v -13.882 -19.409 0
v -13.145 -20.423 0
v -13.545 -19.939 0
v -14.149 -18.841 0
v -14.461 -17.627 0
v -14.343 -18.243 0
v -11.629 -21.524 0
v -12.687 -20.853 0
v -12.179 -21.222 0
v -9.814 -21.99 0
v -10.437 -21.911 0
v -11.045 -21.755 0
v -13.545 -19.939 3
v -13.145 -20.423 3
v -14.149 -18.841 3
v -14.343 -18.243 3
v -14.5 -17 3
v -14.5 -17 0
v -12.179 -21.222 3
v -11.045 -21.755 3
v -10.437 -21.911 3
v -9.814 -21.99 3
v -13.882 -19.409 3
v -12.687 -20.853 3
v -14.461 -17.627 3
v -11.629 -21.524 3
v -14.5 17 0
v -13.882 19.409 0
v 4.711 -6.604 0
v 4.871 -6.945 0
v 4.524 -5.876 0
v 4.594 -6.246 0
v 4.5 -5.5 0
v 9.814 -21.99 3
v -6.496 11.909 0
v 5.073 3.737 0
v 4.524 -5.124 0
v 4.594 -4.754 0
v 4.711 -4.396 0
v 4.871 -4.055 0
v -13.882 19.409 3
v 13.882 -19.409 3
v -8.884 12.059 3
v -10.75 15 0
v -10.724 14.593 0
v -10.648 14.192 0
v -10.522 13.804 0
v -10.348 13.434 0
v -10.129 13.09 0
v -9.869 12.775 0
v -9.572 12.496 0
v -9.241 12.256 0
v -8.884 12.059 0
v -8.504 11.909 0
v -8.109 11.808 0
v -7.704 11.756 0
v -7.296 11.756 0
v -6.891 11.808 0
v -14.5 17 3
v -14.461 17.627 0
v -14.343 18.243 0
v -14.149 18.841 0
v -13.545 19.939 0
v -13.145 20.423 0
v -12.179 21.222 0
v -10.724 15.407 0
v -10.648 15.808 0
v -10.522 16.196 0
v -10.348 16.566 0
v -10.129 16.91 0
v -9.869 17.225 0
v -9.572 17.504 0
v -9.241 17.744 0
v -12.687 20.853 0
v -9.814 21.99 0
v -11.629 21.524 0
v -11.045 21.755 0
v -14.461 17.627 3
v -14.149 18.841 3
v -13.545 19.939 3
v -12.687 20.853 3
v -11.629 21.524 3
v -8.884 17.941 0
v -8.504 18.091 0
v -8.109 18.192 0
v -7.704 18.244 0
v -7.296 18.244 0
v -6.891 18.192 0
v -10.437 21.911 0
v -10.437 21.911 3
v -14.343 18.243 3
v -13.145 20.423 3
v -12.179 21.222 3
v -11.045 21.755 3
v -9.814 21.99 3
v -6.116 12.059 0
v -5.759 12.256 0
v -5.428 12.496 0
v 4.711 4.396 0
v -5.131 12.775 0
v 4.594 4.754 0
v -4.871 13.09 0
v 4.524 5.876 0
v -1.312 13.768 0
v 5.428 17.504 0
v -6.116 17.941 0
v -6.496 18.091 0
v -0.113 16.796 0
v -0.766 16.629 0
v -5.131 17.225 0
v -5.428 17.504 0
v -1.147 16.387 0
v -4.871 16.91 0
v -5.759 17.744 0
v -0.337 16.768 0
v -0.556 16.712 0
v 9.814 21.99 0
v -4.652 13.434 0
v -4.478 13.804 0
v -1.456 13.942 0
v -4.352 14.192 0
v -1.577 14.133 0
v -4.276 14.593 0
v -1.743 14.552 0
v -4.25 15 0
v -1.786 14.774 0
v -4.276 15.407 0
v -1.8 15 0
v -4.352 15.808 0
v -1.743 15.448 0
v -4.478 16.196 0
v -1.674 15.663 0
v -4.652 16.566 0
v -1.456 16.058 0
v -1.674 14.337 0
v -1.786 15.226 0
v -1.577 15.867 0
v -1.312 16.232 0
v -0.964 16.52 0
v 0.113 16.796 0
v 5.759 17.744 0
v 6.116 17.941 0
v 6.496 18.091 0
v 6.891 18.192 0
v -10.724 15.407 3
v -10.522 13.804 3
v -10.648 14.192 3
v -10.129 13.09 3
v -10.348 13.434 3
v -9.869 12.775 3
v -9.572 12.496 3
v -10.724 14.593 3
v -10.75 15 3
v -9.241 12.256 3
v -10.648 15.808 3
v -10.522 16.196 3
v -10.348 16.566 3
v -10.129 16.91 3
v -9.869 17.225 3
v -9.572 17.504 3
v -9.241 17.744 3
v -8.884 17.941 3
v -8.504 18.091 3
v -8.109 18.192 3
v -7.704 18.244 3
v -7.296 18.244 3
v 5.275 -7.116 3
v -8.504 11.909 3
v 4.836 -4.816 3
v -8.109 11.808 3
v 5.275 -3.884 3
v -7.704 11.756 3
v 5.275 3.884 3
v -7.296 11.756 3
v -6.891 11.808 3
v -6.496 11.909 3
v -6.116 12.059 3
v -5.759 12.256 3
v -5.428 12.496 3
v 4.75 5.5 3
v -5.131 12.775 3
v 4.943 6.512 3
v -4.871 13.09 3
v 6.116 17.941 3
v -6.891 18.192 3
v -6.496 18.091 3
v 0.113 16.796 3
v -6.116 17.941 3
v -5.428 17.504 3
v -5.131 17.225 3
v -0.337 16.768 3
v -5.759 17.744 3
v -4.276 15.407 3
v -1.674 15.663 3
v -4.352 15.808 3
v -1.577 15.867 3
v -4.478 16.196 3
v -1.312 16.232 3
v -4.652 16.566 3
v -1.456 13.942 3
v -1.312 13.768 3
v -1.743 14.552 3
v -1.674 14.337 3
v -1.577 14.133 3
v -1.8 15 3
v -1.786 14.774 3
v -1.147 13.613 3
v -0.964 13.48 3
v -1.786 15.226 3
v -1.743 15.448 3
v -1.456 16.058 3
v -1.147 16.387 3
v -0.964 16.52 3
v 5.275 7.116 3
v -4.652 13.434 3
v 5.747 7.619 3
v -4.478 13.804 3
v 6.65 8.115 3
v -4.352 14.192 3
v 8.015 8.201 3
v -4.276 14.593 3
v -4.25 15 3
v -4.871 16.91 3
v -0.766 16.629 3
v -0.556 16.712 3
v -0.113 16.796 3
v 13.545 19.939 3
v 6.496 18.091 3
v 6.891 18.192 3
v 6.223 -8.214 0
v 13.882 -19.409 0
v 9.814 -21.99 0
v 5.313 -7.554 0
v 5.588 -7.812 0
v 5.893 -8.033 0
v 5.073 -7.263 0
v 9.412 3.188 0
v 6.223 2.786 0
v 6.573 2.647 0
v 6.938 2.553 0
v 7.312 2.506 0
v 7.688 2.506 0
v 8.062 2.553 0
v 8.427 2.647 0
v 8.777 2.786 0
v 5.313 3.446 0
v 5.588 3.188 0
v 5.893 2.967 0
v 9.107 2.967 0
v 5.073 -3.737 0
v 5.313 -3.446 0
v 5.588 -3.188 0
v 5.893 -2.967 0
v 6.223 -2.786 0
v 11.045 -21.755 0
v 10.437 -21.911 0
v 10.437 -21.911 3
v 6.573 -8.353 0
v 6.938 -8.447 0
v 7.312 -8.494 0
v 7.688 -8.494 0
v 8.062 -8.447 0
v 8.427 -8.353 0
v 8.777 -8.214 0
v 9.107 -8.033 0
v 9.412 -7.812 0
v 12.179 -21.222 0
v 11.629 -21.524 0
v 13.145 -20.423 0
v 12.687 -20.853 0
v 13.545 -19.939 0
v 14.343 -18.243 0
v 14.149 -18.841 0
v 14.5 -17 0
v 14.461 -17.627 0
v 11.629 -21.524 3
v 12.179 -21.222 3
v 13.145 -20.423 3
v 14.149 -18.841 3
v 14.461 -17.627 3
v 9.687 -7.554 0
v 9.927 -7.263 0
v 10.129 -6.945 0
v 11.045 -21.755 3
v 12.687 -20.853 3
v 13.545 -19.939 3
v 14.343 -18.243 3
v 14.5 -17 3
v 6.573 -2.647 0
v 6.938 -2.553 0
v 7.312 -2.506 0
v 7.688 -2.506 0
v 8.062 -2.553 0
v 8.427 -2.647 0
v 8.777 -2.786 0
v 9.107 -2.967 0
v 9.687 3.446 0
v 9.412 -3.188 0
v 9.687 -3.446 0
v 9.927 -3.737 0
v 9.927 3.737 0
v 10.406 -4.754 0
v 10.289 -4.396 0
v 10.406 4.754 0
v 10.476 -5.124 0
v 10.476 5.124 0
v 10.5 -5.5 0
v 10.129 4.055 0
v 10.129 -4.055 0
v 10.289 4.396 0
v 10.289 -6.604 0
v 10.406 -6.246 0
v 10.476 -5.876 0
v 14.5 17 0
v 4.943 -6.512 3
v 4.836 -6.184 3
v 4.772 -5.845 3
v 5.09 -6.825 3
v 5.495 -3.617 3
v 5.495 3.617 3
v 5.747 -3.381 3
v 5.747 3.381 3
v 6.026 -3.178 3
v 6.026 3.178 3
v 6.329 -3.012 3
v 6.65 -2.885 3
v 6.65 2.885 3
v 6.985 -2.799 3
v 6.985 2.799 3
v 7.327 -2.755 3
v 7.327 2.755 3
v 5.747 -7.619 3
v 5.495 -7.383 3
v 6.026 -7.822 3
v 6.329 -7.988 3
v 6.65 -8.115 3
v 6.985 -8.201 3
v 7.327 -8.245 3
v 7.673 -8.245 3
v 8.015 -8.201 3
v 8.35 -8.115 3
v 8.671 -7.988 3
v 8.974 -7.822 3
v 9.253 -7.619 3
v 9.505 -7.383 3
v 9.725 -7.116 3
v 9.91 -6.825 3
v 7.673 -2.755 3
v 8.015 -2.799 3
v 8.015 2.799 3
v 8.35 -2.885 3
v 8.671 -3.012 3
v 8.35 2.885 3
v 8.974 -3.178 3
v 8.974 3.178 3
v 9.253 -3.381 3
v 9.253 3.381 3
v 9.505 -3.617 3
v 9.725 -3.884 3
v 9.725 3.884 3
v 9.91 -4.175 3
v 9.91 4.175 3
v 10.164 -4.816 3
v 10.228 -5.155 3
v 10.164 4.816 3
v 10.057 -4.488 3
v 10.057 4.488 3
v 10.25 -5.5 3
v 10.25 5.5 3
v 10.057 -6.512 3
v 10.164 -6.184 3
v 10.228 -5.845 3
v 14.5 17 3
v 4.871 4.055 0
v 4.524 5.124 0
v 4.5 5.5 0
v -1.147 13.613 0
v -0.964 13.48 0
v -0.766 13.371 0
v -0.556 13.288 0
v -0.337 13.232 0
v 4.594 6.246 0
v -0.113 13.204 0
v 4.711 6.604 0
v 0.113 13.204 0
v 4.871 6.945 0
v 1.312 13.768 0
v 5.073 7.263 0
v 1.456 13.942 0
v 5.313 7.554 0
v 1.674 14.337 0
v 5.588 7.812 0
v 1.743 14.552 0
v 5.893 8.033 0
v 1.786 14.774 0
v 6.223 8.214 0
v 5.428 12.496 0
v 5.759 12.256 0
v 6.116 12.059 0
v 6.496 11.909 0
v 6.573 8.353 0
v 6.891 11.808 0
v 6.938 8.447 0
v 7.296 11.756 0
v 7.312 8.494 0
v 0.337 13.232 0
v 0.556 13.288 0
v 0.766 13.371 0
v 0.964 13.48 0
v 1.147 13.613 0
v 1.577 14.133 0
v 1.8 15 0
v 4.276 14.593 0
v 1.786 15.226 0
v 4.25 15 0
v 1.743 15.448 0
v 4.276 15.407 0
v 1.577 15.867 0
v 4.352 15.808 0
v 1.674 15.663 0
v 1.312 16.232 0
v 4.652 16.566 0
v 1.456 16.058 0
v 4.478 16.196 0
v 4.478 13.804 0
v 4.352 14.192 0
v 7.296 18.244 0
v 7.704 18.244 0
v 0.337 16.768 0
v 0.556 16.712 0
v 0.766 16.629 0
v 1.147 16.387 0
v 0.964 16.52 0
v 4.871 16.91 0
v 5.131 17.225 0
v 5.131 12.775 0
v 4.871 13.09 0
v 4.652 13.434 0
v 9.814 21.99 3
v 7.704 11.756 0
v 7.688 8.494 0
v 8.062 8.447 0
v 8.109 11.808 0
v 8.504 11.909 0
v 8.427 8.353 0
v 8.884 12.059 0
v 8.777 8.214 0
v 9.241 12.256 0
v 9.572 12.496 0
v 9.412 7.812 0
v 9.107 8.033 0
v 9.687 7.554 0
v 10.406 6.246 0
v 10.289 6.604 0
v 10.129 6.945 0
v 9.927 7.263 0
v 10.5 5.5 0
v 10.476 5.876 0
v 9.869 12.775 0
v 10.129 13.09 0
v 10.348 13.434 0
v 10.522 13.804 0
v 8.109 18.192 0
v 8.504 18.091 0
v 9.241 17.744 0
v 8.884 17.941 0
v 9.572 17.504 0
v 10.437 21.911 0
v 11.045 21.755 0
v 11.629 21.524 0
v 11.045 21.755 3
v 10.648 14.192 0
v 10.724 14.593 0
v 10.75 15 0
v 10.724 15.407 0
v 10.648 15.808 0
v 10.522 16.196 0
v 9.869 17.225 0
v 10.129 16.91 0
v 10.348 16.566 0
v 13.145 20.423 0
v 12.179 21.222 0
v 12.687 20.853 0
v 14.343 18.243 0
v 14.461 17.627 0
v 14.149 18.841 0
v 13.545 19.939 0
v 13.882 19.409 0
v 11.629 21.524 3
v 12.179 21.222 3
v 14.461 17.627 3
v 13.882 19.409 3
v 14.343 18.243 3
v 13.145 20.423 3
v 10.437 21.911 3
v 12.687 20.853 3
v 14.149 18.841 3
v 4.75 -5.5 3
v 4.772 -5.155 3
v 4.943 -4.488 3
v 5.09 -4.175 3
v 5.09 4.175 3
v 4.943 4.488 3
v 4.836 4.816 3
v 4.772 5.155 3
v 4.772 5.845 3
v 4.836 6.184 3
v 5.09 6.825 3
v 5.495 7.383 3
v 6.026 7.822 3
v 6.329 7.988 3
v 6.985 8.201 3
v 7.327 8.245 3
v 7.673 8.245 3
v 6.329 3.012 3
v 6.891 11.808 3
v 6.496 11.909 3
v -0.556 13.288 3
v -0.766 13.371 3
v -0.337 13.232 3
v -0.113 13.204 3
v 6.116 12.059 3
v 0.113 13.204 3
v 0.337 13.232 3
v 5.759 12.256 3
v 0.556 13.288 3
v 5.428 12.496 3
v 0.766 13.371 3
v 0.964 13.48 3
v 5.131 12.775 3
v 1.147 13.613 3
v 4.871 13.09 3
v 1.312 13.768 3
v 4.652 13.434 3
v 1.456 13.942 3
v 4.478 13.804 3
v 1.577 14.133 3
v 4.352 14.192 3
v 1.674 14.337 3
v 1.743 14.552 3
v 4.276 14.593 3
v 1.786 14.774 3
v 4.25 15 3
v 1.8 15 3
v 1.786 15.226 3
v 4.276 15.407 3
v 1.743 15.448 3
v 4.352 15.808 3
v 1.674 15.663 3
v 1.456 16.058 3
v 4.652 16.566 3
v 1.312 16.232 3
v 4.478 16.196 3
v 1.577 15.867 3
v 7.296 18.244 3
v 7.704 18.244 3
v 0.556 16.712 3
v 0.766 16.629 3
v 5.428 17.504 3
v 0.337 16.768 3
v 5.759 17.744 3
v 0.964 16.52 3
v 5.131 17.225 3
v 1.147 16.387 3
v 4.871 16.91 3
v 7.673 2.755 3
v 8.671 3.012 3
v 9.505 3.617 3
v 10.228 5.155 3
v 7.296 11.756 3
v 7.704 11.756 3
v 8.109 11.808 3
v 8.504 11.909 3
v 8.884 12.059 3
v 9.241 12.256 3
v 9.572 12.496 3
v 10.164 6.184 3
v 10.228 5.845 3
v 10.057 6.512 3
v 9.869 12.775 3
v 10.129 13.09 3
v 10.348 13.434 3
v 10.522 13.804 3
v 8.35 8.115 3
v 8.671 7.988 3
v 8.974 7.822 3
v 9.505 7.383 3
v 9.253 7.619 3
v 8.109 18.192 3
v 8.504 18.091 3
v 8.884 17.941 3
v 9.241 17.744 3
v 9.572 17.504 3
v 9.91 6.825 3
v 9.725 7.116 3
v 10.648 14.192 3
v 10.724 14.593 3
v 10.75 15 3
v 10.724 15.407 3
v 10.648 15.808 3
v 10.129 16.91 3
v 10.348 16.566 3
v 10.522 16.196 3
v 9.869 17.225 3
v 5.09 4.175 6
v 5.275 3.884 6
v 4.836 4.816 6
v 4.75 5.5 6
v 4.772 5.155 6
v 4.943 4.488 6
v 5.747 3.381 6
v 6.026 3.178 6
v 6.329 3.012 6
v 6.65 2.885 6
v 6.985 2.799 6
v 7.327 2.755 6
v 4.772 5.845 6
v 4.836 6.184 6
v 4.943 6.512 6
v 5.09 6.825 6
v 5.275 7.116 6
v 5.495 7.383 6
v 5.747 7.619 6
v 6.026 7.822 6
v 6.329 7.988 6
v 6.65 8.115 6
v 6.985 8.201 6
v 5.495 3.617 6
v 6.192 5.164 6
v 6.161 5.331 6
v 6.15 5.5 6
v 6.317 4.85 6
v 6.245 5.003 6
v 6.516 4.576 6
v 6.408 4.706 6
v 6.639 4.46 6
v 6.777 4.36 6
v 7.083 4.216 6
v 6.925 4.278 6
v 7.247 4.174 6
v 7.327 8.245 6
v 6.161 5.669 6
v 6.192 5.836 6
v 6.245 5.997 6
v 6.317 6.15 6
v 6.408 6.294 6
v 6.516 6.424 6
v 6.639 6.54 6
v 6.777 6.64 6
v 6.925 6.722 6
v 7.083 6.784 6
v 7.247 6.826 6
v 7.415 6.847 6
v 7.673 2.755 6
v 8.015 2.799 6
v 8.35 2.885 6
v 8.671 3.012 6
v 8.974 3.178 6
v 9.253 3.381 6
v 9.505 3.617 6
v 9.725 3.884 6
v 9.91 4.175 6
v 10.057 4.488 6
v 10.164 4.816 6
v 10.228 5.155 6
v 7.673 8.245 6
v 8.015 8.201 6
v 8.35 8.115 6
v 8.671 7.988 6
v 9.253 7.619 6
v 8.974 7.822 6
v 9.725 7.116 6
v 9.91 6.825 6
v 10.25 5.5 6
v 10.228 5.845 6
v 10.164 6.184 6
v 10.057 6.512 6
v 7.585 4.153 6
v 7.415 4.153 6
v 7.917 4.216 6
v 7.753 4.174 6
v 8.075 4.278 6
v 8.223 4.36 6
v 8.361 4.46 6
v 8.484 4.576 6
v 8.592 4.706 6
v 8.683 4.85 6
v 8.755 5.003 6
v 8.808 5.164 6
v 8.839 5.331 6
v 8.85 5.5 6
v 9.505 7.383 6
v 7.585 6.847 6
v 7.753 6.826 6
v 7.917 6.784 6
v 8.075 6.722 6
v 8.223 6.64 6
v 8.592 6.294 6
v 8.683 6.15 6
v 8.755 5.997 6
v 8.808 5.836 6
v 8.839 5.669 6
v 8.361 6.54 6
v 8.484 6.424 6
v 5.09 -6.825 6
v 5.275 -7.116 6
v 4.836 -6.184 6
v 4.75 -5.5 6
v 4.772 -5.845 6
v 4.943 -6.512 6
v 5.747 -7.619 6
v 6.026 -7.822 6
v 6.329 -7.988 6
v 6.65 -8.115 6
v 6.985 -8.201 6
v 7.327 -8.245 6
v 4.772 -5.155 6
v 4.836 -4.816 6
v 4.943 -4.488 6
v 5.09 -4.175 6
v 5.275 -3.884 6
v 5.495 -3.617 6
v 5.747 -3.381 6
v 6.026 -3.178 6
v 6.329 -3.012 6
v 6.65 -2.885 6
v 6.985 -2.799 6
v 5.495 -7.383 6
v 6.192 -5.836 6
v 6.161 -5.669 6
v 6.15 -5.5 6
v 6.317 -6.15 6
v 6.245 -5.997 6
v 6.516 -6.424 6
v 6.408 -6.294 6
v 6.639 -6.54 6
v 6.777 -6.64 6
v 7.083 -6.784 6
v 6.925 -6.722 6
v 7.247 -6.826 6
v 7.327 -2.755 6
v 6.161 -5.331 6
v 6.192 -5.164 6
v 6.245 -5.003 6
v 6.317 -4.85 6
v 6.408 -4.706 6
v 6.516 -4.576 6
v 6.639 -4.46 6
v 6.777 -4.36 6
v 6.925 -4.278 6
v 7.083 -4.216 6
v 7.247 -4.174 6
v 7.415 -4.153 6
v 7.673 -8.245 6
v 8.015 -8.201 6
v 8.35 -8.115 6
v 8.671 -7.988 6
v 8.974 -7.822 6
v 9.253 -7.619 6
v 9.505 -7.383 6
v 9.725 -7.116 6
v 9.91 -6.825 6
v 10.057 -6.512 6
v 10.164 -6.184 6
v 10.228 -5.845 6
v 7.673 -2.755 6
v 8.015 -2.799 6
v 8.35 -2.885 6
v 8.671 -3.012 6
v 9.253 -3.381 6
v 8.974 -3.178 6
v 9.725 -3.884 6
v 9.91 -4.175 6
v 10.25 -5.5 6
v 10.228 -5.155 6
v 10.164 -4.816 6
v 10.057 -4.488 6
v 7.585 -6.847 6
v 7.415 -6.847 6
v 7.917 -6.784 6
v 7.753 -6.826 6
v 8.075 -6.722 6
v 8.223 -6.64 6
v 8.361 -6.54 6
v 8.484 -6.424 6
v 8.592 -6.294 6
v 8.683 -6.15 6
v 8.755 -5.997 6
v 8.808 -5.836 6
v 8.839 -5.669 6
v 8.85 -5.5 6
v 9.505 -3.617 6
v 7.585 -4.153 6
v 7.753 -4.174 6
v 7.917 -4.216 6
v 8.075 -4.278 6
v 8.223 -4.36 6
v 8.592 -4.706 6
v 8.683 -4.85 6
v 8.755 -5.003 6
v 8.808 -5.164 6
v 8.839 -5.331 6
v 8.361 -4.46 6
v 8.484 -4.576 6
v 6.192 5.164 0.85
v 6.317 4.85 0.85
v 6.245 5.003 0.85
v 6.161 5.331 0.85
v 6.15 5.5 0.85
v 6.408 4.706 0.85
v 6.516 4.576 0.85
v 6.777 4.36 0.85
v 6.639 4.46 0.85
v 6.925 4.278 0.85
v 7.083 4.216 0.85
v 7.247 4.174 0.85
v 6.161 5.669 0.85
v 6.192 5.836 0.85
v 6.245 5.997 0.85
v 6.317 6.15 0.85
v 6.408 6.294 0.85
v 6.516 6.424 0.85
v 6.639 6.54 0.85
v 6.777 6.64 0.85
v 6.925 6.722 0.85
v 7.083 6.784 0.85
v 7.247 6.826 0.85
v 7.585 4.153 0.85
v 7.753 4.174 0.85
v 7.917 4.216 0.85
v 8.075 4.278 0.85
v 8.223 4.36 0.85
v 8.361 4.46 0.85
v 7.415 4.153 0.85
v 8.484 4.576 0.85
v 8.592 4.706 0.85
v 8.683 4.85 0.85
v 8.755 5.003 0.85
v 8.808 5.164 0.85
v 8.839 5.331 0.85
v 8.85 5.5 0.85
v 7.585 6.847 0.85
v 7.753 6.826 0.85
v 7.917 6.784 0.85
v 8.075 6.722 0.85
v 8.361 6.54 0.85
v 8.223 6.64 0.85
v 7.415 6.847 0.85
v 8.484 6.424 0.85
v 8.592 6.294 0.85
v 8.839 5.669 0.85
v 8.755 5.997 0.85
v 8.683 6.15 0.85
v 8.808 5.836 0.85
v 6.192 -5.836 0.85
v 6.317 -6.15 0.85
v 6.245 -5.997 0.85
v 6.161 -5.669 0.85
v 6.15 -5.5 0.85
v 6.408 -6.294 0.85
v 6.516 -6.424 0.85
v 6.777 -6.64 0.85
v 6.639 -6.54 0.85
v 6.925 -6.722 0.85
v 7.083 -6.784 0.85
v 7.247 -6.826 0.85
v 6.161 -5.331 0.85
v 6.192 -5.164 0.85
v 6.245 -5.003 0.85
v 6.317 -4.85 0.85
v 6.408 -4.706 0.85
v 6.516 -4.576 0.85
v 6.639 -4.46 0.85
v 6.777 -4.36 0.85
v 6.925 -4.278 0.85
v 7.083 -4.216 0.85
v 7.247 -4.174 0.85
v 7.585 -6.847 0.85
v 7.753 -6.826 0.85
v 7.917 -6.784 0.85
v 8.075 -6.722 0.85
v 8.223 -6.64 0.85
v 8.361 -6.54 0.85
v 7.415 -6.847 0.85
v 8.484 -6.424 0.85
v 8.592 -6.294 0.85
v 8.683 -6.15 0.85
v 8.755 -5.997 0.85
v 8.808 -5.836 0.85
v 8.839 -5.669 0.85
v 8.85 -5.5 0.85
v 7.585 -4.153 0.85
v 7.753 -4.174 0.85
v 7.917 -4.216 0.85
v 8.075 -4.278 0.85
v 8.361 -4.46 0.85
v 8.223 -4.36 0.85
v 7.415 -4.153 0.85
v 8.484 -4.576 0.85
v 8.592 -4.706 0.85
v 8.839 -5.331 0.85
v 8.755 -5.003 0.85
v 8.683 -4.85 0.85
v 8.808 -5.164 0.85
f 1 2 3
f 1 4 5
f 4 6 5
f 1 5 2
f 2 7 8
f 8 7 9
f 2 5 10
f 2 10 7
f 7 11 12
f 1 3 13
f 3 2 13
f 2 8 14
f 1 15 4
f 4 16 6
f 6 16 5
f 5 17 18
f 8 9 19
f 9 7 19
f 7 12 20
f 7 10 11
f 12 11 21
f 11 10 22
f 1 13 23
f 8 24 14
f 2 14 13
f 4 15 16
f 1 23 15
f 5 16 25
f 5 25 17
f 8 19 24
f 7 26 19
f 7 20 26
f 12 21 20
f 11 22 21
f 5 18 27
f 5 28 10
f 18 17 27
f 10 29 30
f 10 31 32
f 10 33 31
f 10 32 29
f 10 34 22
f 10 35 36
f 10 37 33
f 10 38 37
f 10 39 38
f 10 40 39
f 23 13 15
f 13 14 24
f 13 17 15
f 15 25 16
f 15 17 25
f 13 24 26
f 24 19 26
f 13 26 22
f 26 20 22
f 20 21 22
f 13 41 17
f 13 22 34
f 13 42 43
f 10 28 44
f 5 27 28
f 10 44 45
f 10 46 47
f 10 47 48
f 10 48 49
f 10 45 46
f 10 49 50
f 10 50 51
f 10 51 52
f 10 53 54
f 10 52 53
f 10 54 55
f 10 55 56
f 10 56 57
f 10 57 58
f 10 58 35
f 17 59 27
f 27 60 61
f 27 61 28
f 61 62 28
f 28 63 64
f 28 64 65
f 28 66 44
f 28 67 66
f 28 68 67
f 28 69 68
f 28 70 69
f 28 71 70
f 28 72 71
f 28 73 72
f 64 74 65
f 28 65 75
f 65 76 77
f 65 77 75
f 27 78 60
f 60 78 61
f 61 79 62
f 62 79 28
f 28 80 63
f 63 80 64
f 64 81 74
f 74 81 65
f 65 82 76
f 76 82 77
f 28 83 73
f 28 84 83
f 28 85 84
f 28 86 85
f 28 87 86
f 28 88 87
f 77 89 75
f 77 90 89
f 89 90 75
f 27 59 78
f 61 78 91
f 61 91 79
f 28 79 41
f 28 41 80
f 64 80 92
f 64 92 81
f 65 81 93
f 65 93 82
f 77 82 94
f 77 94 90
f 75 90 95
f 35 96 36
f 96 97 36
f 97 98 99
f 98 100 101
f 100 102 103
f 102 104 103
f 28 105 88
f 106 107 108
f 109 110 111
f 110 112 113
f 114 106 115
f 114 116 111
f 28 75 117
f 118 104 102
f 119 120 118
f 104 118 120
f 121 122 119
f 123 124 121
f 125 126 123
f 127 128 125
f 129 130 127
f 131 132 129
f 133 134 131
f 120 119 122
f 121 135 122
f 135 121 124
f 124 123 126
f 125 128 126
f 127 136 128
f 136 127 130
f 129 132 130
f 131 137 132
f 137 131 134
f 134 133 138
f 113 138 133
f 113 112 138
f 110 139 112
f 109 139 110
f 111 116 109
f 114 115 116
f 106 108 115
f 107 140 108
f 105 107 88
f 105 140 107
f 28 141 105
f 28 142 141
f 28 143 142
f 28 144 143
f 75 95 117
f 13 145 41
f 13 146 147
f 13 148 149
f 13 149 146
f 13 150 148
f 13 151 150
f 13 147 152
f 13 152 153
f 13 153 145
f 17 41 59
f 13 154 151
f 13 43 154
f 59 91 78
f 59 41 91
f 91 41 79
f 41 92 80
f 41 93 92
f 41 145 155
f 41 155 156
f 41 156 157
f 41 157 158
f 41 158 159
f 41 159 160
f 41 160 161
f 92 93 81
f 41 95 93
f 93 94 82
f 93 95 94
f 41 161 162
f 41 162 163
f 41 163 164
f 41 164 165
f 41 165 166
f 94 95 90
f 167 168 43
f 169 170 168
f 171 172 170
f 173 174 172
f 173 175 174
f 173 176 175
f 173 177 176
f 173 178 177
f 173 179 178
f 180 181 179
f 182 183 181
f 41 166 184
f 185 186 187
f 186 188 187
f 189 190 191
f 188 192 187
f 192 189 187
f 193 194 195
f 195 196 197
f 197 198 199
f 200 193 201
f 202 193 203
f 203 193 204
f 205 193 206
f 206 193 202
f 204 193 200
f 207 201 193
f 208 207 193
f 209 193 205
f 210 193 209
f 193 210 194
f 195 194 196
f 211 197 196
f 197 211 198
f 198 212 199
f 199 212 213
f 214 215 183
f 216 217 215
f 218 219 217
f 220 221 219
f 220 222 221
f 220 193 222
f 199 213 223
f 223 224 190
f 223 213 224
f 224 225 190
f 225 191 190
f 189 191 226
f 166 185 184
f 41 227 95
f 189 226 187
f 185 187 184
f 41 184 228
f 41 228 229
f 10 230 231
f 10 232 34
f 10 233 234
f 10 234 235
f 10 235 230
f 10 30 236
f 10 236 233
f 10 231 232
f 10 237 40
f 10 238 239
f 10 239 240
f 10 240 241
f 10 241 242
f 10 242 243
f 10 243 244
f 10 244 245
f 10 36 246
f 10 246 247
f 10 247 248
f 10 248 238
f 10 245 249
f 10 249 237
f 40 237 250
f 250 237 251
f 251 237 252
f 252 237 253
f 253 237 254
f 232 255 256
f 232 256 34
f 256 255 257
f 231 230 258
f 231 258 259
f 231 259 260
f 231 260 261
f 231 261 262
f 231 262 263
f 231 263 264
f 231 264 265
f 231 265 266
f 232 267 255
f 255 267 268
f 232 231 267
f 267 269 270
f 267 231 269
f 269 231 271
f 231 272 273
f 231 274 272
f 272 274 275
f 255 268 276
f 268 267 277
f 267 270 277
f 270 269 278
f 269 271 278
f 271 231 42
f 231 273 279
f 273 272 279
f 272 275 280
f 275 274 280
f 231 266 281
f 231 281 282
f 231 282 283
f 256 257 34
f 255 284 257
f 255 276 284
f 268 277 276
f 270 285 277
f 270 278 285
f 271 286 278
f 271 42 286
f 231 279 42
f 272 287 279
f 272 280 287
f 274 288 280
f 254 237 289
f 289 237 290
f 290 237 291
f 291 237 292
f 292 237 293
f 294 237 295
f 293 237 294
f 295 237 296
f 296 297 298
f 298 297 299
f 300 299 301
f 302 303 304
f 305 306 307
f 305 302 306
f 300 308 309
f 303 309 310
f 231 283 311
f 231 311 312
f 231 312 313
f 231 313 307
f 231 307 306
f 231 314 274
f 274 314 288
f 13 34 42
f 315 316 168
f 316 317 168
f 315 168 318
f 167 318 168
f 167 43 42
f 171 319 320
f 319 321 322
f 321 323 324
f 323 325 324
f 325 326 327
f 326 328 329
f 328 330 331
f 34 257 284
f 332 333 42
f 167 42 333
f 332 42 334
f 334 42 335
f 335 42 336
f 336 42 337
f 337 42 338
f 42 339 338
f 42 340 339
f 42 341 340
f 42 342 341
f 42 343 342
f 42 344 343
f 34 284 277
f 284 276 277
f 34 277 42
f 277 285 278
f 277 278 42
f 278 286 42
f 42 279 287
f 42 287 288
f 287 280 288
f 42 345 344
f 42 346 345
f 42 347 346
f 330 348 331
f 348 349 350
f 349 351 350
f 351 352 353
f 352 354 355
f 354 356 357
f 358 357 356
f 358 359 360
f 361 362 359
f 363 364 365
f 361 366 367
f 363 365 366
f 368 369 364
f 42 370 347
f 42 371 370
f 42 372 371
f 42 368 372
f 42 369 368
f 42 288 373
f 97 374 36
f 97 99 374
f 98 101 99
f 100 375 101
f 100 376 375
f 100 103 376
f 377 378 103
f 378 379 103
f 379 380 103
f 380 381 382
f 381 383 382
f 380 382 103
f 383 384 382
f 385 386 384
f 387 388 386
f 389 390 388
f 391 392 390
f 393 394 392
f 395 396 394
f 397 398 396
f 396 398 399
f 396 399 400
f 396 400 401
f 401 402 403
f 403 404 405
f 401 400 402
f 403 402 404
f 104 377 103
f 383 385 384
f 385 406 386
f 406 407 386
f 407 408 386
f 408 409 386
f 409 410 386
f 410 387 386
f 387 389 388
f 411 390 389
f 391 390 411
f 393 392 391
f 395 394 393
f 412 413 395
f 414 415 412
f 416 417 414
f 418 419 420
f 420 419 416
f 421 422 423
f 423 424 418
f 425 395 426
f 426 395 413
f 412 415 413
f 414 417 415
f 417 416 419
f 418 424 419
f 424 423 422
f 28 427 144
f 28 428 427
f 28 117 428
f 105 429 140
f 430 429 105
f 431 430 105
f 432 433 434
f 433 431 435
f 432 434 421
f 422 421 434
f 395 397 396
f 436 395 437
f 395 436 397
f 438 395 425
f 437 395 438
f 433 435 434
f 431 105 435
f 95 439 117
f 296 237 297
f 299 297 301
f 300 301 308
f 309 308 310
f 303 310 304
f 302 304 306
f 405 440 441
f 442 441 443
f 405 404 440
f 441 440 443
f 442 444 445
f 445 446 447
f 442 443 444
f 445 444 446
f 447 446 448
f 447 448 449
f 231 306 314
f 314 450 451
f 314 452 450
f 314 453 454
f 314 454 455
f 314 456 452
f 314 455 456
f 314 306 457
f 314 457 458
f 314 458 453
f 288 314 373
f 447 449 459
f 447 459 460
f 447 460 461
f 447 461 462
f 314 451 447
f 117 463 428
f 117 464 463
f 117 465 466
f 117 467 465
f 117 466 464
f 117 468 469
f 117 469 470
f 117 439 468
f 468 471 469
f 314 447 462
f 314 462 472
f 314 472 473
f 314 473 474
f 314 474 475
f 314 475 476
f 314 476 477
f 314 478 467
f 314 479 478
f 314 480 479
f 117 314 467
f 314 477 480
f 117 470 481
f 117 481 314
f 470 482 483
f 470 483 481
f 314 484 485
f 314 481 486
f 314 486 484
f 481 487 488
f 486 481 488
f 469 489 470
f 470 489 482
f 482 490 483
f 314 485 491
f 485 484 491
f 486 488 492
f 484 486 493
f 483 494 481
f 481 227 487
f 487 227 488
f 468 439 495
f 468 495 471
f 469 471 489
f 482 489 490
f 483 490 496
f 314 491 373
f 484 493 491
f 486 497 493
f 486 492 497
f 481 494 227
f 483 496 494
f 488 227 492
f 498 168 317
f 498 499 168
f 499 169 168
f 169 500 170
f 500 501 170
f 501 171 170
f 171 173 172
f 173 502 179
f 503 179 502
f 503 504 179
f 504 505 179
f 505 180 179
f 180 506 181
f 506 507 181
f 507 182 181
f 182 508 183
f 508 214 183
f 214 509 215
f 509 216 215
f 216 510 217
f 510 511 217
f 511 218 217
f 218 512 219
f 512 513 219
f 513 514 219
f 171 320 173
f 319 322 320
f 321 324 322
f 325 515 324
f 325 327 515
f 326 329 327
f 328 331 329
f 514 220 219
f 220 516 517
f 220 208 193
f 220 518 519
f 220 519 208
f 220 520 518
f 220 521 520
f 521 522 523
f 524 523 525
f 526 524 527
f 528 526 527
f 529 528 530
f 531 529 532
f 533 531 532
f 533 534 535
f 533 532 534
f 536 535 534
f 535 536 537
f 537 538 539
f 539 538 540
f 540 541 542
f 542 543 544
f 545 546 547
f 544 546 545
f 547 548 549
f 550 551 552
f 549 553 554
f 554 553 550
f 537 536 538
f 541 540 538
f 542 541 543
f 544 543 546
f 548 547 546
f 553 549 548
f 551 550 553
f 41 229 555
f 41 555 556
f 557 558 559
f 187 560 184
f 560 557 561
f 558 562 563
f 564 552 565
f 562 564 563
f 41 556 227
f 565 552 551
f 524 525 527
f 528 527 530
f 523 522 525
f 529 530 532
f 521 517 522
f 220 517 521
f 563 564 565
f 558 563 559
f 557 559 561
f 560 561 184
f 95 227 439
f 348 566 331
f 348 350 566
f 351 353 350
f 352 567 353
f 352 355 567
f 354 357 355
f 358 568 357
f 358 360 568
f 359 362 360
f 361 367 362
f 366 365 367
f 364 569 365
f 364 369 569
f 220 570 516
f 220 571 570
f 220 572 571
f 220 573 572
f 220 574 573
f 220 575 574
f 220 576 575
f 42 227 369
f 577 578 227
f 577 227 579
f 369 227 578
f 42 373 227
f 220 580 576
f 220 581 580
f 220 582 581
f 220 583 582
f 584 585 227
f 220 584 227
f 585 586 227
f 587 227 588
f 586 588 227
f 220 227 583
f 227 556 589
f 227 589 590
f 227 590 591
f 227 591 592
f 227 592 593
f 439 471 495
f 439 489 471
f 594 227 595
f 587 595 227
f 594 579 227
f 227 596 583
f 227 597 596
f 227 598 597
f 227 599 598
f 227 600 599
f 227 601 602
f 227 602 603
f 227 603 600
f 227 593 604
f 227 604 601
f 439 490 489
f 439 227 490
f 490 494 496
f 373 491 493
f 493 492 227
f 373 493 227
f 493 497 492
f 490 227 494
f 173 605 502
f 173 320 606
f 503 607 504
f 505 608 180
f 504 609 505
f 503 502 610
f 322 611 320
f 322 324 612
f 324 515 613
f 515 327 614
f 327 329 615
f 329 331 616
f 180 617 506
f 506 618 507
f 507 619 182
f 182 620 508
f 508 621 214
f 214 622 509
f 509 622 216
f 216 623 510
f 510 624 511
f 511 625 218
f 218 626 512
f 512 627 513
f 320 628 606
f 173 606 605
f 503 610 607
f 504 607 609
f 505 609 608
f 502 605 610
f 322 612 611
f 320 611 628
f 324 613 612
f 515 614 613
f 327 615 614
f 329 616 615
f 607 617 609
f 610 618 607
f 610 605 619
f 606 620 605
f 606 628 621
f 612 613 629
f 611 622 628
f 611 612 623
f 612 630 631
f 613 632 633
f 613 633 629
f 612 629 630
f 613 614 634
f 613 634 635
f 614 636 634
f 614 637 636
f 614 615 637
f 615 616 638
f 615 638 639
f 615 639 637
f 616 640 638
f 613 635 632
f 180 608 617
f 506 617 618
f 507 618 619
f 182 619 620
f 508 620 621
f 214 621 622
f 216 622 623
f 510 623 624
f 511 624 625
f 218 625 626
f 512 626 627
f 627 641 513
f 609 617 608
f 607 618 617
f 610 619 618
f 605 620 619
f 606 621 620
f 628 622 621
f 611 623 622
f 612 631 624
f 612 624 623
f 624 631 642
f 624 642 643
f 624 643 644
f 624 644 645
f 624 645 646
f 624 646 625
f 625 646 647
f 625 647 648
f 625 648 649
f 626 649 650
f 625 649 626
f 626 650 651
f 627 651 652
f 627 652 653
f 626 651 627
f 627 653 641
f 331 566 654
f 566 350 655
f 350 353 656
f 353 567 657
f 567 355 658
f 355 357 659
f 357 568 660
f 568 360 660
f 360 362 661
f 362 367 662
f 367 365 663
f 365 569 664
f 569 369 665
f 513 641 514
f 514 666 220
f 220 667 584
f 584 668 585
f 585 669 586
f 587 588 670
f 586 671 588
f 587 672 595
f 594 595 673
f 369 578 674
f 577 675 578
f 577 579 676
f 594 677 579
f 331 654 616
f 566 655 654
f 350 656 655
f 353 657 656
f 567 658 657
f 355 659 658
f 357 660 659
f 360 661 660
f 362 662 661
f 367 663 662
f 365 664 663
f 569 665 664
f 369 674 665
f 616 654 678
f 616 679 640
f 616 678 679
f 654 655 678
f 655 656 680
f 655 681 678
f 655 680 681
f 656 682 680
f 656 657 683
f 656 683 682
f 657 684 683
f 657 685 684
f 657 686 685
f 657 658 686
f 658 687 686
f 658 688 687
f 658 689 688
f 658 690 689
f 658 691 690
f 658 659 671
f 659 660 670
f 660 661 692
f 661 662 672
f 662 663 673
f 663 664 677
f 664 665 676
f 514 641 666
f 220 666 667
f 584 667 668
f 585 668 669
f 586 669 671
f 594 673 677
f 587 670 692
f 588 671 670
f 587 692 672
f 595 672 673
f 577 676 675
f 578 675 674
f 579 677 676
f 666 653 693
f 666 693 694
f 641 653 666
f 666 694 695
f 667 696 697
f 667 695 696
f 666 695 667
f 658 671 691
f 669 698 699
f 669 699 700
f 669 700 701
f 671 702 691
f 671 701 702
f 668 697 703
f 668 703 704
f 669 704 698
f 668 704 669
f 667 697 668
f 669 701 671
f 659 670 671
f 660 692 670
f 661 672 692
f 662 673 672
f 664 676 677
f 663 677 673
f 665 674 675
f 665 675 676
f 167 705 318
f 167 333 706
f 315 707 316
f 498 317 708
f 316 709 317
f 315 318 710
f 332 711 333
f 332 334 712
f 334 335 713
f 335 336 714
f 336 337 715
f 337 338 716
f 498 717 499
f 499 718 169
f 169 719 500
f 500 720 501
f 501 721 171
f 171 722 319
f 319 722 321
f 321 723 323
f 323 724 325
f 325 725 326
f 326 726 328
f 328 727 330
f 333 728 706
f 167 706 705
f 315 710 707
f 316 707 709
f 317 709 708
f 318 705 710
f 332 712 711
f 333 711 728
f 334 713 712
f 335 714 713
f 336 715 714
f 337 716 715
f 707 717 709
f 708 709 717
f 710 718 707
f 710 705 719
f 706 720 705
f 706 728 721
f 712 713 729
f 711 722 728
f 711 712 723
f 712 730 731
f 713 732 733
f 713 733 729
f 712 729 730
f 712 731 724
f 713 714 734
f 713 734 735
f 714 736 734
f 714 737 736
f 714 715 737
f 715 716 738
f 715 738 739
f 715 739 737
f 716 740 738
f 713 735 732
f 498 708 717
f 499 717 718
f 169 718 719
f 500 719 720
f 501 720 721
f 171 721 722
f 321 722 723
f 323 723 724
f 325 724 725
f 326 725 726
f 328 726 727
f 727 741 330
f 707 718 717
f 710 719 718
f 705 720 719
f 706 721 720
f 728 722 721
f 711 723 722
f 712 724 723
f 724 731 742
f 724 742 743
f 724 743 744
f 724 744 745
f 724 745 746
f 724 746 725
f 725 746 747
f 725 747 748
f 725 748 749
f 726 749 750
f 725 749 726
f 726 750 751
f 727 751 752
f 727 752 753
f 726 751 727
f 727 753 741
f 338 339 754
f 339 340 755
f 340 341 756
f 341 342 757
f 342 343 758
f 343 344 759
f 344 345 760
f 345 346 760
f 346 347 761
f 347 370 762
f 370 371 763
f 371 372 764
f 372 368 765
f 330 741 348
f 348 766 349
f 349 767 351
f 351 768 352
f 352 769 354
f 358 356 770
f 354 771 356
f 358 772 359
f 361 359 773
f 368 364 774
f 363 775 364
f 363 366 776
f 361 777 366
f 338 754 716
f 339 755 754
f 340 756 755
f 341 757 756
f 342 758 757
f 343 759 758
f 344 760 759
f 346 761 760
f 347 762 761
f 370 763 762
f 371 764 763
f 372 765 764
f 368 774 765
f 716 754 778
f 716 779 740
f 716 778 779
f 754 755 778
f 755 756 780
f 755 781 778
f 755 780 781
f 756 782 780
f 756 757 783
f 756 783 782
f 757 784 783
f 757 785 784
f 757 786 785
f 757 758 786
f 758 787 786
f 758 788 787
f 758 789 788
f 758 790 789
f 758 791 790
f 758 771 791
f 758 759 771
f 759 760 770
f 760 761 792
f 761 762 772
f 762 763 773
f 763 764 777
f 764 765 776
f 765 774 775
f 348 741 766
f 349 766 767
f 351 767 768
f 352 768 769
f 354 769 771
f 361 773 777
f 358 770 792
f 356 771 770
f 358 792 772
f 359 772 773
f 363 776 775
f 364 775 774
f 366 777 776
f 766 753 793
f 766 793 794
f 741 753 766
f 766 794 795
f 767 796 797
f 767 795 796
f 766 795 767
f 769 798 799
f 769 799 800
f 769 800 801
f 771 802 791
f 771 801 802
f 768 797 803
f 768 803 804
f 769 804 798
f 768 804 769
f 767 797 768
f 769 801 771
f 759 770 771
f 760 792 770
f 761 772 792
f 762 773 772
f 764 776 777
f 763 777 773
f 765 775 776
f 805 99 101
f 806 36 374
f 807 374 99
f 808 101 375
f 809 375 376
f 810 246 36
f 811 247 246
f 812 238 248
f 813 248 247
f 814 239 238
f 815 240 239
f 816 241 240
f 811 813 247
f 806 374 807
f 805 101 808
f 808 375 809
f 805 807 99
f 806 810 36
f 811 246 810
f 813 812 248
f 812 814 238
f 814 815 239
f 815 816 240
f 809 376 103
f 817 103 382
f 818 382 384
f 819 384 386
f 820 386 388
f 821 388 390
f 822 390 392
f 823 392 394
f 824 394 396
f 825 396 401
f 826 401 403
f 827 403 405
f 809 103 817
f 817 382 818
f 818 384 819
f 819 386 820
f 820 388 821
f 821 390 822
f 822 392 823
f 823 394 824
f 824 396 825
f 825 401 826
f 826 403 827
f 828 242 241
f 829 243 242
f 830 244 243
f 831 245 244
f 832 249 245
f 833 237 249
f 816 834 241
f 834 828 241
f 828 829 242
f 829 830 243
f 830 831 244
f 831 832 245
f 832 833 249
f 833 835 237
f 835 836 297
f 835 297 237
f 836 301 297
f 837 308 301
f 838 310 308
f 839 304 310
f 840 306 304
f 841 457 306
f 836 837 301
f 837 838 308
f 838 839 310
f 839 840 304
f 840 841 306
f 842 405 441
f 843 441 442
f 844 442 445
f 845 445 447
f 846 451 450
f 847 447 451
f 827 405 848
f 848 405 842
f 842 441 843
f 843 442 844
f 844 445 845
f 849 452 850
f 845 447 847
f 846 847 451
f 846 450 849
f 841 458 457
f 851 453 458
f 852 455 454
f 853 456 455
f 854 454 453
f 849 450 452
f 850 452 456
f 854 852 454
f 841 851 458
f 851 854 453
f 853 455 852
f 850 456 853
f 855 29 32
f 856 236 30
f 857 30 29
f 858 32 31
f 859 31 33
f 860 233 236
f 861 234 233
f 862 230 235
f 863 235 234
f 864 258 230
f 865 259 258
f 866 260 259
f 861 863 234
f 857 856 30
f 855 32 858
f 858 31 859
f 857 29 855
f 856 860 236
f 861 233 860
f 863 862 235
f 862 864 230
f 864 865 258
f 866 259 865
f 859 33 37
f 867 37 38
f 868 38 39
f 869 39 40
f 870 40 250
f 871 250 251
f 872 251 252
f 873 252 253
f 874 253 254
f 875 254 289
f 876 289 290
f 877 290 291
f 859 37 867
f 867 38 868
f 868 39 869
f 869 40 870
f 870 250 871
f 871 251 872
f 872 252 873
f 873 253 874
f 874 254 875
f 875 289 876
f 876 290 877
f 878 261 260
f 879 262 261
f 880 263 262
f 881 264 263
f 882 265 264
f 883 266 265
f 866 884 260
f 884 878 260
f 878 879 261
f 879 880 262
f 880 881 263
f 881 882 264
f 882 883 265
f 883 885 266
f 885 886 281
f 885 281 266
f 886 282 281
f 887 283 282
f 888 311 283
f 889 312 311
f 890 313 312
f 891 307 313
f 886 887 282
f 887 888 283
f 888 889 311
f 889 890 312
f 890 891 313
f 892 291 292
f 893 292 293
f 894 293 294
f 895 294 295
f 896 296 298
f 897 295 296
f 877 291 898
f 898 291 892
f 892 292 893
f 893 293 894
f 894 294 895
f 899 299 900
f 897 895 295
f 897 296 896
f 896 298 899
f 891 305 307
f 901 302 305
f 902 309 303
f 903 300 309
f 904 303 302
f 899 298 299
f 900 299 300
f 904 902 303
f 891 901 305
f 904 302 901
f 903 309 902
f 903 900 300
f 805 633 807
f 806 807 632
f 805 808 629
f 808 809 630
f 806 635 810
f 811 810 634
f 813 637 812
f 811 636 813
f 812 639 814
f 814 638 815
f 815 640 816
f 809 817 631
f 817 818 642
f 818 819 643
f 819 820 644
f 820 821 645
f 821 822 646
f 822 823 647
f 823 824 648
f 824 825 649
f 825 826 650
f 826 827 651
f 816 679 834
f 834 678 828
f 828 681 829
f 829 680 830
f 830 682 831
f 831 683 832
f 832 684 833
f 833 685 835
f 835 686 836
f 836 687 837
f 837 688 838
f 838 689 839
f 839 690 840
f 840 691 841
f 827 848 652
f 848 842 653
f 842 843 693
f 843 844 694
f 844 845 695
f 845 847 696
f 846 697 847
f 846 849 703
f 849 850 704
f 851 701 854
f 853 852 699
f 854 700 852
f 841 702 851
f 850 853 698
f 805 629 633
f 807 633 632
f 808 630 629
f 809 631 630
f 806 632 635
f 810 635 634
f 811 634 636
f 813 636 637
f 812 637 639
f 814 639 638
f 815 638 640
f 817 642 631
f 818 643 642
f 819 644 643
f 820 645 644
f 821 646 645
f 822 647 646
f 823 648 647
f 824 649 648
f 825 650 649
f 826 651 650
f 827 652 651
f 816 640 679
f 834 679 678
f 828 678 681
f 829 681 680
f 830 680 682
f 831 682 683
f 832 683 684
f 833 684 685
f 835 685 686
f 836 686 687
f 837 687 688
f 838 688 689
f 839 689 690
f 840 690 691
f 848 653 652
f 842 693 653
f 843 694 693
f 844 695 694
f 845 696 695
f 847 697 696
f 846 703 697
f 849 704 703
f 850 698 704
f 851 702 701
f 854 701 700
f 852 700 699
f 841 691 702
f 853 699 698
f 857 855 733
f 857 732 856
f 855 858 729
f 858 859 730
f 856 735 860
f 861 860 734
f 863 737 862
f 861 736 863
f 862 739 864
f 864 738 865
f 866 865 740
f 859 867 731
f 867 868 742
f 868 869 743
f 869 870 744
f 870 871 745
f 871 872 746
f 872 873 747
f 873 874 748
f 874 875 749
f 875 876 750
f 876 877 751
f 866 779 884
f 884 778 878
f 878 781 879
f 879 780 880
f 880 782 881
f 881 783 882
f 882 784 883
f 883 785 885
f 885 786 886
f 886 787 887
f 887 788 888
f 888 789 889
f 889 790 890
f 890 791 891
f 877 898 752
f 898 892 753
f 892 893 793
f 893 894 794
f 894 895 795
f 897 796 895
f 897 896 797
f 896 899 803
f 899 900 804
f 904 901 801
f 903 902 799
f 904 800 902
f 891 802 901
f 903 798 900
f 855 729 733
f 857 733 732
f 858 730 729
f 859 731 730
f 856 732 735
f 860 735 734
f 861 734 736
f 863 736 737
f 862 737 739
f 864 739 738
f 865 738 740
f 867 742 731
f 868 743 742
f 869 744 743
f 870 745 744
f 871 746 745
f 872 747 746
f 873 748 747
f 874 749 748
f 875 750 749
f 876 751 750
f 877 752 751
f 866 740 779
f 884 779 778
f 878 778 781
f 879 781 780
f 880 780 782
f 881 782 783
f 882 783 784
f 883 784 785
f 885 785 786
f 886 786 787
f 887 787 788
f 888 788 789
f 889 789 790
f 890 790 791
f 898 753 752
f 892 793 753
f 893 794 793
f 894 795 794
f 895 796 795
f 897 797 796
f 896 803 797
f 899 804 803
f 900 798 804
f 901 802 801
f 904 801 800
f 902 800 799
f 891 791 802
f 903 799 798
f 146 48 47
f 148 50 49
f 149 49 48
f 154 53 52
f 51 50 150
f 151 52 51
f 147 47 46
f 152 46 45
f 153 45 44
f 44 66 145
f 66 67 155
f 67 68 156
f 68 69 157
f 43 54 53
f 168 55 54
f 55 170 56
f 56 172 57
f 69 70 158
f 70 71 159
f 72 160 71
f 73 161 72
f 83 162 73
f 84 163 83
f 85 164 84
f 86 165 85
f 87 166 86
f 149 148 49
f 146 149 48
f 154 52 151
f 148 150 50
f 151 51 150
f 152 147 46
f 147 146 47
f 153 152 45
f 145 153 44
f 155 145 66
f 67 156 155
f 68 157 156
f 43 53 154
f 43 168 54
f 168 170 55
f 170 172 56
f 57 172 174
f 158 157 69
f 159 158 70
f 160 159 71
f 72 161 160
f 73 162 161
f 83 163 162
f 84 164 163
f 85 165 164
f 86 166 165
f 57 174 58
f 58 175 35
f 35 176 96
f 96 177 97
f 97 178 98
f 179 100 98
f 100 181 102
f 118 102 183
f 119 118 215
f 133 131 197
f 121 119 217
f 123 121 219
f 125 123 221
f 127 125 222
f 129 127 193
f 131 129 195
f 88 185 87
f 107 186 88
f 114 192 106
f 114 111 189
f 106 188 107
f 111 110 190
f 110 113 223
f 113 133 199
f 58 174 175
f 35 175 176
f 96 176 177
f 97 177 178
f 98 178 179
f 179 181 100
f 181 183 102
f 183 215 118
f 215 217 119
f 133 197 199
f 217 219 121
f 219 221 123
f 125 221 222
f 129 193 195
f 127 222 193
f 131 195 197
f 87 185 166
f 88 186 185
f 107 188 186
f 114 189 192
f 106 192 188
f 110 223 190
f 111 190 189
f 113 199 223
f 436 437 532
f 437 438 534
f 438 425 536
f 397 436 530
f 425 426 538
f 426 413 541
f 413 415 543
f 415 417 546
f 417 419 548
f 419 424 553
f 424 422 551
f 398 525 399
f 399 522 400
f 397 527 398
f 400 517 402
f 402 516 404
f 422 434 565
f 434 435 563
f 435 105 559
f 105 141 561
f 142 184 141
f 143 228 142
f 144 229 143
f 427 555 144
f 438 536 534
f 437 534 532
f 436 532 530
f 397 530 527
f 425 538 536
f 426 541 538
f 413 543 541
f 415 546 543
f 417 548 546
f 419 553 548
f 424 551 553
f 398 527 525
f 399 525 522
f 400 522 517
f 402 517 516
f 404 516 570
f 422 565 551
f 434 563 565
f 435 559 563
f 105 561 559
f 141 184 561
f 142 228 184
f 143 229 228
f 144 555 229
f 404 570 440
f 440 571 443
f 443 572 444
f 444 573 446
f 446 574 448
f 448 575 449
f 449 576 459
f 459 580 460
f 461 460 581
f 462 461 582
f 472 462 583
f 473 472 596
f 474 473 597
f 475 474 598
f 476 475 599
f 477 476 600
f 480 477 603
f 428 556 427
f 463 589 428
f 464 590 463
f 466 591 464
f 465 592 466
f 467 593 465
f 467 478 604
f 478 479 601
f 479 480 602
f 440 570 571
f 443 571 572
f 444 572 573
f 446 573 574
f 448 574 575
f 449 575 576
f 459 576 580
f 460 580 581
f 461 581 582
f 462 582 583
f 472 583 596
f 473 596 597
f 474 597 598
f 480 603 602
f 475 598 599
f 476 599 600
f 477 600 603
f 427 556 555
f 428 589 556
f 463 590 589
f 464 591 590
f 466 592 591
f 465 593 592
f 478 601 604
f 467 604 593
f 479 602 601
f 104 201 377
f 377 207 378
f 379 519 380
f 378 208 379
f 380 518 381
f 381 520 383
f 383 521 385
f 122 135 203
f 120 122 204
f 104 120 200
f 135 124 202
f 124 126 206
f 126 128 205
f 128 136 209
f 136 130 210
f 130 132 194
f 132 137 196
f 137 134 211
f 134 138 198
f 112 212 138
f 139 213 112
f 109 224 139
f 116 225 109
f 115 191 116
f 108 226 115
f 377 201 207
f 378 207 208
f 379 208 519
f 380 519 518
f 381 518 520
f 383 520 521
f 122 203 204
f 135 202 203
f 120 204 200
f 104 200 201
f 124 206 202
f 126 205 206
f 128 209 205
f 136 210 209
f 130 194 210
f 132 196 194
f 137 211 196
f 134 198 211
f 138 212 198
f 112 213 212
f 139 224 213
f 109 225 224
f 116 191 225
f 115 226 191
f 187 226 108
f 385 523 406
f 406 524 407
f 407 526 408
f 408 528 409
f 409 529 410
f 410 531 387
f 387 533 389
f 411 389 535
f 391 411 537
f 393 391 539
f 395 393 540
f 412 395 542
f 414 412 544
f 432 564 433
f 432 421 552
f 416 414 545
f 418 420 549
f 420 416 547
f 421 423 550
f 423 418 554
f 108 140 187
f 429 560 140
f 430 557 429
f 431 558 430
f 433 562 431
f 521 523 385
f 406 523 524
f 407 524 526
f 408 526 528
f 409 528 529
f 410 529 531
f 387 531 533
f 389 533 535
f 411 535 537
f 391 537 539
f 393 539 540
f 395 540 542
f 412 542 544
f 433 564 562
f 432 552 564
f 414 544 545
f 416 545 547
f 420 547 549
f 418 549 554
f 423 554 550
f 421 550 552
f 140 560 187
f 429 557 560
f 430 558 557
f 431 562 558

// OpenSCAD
$fn = 50;

difference() {
	union() {
		hull() {
			translate(v = [-9.5, 17.0, 0]) {
				cylinder(h = 3, r = 5);
			}
			translate(v = [9.5, 17.0, 0]) {
				cylinder(h = 3, r = 5);
			}
			translate(v = [-9.5, -17.0, 0]) {
				cylinder(h = 3, r = 5);
			}
			translate(v = [9.5, -17.0, 0]) {
				cylinder(h = 3, r = 5);
			}
		}
		translate(v = [7.5, 5.5, 3.0]) {
			cylinder(h = 3, r = 2.75);
		}
		translate(v = [7.5, -5.5, 3.0]) {
			cylinder(h = 3, r = 2.75);
		}
	}
	union() {
		translate(v = [7.5, 5.5, 0]) {
			rotate(a = [0, 180, 0]) {
				difference() {
					union() {
						translate(v = [0, 0, -6.0]) {
							cylinder(h = 6, r = 1.0);
						}
						translate(v = [0, 0, -0.85]) {
							cylinder(h = 0.85, r1 = 1.35, r2 = 3.0);
						}
						translate(v = [0, 0, -6.0]) {
							cylinder(h = 6, r = 1.35);
						}
						translate(v = [0, 0, -6.0]) {
							cylinder(h = 6, r = 1.0);
						}
					}
					union();
				}
			}
		}
		translate(v = [7.5, -5.5, 0]) {
			rotate(a = [0, 180, 0]) {
				difference() {
					union() {
						translate(v = [0, 0, -6.0]) {
							cylinder(h = 6, r = 1.0);
						}
						translate(v = [0, 0, -0.85]) {
							cylinder(h = 0.85, r1 = 1.35, r2 = 3.0);
						}
						translate(v = [0, 0, -6.0]) {
							cylinder(h = 6, r = 1.35);
						}
						translate(v = [0, 0, -6.0]) {
							cylinder(h = 6, r = 1.0);
						}
					}
					union();
				}
			}
		}
		translate(v = [-7.5, 15.0, -1]) {
			cylinder(h = 5, r = 3.25);
		}
		translate(v = [7.5, 15.0, -1]) {
			cylinder(h = 5, r = 3.25);
		}
		translate(v = [0.0, 15.0, -1]) {
			cylinder(h = 5, r = 1.8);
		}
	}
}
